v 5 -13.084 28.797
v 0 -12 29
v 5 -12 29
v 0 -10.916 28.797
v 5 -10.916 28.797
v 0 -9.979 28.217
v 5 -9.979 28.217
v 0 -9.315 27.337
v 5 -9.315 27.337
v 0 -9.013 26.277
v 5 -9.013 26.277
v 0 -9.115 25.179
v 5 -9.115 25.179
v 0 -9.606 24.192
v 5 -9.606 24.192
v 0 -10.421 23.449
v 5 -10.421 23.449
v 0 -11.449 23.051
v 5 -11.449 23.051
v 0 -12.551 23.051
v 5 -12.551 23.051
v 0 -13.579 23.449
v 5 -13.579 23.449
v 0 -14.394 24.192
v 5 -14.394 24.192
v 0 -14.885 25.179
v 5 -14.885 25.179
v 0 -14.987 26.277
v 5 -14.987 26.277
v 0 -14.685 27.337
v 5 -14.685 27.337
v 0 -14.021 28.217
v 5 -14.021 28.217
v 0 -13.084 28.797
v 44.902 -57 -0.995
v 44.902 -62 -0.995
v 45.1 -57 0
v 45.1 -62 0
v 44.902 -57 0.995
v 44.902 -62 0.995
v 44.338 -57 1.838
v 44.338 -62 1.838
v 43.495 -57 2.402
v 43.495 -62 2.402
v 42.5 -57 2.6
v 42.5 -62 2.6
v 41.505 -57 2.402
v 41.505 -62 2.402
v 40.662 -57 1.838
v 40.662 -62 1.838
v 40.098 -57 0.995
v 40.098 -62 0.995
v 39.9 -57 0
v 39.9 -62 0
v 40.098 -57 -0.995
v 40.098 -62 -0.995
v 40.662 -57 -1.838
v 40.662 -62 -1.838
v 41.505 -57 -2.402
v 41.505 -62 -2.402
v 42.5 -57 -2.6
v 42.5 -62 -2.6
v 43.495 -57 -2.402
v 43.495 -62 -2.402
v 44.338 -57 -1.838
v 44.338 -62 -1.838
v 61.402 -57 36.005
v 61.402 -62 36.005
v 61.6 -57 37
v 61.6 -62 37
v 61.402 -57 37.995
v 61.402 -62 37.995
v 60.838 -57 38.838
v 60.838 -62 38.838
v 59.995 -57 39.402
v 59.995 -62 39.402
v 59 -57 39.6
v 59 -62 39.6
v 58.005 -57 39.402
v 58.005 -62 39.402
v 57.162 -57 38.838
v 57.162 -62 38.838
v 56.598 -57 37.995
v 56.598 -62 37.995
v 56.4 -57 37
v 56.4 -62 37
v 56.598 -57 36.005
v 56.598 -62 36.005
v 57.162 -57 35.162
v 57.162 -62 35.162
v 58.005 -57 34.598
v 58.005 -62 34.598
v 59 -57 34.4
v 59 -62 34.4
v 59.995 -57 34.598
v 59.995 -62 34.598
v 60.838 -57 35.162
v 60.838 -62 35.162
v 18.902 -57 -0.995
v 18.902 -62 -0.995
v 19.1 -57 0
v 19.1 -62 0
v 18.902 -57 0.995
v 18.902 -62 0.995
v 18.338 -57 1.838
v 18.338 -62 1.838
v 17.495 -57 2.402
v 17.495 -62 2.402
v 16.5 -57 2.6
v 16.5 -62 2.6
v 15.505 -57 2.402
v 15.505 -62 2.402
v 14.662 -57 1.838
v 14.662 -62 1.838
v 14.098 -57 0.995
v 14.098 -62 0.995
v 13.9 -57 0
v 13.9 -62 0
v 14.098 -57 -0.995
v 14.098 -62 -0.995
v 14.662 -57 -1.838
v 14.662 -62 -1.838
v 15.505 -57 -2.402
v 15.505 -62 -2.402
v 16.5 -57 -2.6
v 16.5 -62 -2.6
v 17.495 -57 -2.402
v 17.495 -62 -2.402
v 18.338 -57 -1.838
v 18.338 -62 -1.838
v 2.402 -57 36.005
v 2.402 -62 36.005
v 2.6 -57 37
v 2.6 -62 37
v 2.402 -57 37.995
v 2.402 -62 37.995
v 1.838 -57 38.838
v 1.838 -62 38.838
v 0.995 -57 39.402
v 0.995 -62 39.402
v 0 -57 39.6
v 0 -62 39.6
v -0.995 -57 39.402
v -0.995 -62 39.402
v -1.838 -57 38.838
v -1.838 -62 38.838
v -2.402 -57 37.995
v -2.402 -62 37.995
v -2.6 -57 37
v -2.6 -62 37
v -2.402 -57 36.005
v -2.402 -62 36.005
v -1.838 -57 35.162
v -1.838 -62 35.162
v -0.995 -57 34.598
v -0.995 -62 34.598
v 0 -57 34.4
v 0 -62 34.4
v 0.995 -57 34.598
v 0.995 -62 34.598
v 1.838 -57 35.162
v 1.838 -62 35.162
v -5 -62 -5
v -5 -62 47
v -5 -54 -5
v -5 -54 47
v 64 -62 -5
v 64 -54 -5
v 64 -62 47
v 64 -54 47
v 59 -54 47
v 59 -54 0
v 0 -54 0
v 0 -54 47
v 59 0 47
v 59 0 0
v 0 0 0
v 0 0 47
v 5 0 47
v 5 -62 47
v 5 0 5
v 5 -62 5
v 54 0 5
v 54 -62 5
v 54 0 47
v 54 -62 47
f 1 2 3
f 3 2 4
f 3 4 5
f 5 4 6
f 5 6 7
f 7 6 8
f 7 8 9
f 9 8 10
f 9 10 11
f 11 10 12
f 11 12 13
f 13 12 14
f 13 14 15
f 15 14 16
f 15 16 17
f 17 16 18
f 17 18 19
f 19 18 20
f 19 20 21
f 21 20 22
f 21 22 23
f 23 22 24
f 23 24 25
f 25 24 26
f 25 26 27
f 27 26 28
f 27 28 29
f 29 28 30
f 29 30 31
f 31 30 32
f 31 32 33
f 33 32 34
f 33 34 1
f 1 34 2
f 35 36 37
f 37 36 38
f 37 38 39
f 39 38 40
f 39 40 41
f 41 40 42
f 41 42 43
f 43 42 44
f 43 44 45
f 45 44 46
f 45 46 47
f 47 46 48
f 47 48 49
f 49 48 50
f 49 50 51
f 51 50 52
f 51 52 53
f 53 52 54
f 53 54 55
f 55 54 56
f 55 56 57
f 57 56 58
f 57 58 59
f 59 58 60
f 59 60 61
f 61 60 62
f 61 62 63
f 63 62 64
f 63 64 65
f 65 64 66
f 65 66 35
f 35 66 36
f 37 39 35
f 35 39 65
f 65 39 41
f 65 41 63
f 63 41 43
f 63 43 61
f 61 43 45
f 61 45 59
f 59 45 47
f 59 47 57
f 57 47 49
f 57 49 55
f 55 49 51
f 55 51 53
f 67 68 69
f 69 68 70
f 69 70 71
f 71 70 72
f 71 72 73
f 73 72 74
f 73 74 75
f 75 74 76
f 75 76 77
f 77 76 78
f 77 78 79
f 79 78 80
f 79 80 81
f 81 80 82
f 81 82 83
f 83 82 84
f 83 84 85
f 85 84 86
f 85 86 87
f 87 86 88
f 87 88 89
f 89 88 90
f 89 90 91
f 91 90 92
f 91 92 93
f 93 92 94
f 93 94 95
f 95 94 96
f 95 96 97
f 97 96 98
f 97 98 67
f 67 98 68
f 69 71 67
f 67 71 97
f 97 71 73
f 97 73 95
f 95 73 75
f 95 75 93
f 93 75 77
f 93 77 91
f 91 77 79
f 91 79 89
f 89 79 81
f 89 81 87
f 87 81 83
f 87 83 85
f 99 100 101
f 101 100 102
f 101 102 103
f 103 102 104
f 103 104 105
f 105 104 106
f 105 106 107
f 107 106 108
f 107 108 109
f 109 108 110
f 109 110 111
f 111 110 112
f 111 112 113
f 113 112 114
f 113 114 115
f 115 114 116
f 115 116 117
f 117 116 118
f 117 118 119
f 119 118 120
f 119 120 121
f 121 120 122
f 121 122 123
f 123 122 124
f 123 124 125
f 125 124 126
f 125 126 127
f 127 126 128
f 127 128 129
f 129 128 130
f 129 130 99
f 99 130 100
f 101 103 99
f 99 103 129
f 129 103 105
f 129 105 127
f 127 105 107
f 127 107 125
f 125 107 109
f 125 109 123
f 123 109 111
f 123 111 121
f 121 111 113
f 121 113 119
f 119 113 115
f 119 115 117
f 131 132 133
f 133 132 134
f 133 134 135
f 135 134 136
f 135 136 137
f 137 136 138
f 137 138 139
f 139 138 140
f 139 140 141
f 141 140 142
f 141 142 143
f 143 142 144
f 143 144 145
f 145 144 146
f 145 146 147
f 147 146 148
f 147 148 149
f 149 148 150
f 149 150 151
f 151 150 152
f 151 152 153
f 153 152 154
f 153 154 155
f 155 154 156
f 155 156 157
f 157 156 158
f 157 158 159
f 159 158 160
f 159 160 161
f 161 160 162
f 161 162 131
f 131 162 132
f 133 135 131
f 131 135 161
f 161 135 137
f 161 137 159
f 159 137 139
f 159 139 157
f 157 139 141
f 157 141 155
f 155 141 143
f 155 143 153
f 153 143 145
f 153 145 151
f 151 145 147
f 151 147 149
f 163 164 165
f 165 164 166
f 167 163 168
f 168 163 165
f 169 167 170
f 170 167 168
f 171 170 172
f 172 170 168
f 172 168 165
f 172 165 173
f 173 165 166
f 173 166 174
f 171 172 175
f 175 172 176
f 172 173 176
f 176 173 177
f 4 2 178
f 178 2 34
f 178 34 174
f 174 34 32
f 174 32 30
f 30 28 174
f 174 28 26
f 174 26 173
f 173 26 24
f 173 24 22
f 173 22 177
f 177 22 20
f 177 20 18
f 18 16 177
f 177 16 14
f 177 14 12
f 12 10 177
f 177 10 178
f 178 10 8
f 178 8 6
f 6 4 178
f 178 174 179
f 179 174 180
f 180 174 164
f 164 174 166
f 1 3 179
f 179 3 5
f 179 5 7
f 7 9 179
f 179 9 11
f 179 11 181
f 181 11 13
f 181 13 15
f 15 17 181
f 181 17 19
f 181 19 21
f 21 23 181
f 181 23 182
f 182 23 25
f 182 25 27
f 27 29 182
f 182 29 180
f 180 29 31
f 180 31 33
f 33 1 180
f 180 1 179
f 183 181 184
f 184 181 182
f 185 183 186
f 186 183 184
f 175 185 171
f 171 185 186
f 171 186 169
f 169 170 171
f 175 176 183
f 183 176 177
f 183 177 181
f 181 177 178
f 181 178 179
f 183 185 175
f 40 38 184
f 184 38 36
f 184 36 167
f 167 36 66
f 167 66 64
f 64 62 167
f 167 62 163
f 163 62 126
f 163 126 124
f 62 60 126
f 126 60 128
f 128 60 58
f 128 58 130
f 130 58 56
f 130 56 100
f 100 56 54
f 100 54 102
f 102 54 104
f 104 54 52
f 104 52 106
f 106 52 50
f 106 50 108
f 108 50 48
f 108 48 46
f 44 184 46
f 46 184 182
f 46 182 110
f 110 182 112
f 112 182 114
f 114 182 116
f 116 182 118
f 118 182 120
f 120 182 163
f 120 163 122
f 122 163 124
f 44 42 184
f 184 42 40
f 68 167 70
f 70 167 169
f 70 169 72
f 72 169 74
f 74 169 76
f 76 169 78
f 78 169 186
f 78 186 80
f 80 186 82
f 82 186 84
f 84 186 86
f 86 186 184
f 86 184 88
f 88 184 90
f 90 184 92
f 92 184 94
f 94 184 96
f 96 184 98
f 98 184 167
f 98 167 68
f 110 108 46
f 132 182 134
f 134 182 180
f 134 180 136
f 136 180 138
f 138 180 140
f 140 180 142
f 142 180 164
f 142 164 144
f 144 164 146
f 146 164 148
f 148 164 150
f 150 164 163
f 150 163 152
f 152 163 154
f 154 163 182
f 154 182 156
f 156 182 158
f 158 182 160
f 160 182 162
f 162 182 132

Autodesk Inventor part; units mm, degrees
ref_plane "YZ Plane" through (0, 0, 0) normal (1, 0, 0) x (0, 1, 0)
ref_plane "XZ Plane" through (0, 0, 0) normal (0, 1, 0) x (-1, 0, 0)
ref_plane "XY Plane" through (0, 0, 0) normal (0, 0, 1) x (1, 0, 0)
sketch "Sketch1" plane through (0, 0, 0) normal (0, 1, 0) x (-1, 0, 0)
  line L0 (0, 0) -> (-59, 0)
  line L1 (-59, 0) -> (-59, 5)
  line L2 (-59, 5) -> (0, 5)
  line L3 (0, 5) -> (0, 0)
  line L4 (0, 5) -> (-5, 5)
  line L5 (-5, 5) -> (-5, 47)
  line L6 (-5, 47) -> (0, 47)
  line L7 (0, 47) -> (0, 5)
  line L8 (-59, 5) -> (-54, 5)
  line L9 (-54, 5) -> (-54, 47)
  line L10 (-54, 47) -> (-59, 47)
  line L11 (-59, 47) -> (-59, 5)
  point P0 (-54, 5)
  dimension "d0" = 59
  dimension "d1" = 5
  dimension "d2" = 5
  dimension "d3" = 42
  dimension "d4" = 5
  dimension "d5" = 42
extrude "Extrusion1" add sketch "Sketch1" against normal blind 62
sketch "Sketch7" plane through (0, -62, 0) normal (0, -1, 0) x (1, 0, 0)
  line L0 (0, 47) -> (0, 0) projected
  line L1 (0, 47) -> (-5, 47)
  line L2 (-5, 47) -> (-5, -5)
  line L3 (-5, -5) -> (0, -5)
  line L4 (0, -5) -> (0, 47)
  line L5 (59, 47) -> (54, 47) projected
  line L6 (59, 47) -> (64, 47)
  line L7 (64, 47) -> (64, -5)
  line L8 (64, -5) -> (59, -5)
  line L9 (59, -5) -> (59, 47)
  line L10 (0, 0) -> (59, 0) projected
  line L11 (59, -5) -> (0, -5)
  line L12 (0, -5) -> (0, 0)
  line L13 (0, 0) -> (59, 0)
  line L14 (59, 0) -> (59, -5)
  dimension "d34" = 5
  dimension "d35" = 52
  dimension "d36" = 5
  dimension "d37" = 52
extrude "Extrusion7" add sketch "Sketch7" against normal blind 8
sketch "Sketch8" plane through (0, -62, 0) normal (0, -1, 0) x (1, 0, 0)
  line L0 (0, 0) -> (0, 47) projected
  line L1 (5, 47) -> (-5, 47) projected
  circle A0 centre (0, 37) radius 2.6
  line L2 (59, 47) -> (59, 0) projected
  line L3 (64, 47) -> (54, 47) projected
  circle A1 centre (59, 37) radius 2.6
  line L4 (59, 0) -> (0, 0) projected
  line L5 (-5, 47) -> (-5, -5) projected
  line L6 (64, -5) -> (64, 47) projected
  circle A2 centre (16.5, 0) radius 2.6
  circle A3 centre (42.5, 0) radius 2.6
  point P0 (29.5, 0)
  dimension "d40" = 10
  dimension "d41" = 5.2
  dimension "d42" = 10
  dimension "d43" = 5.2
  dimension "d44" = 34.5
  dimension "d47" = 5.2
  dimension "d48" = 5.2
  dimension "d56" = 13
  dimension "d57" = 13
extrude "Extrusion8" cut sketch "Sketch8" against normal blind 5
sketch "Sketch9" plane through (0, 0, 0) normal (-1, 0, 0) x (0, 0, 1)
  point P0 (0, 0)
sketch "Sketch10" plane through (0, 0, 0) normal (-1, 0, 0) x (0, 0, 1)
  line L0 (47, 0) -> (47, -54) projected
  line L1 (47, -62) -> (-5, -62) projected
  circle A0 centre (26, -12) radius 3
  point P0 (0, 0)
  dimension "d51" = 21
  dimension "d52" = 50
  dimension "d53" = 6
extrude "Extrusion9" cut sketch "Sketch10" against normal blind 5
equation "\"d4\" = d2"
equation "\"d5\" = d3"
equation "\"d42\" = d40"
equation "\"d43\" = d41"
equation "\"d47\" = d41"
equation "\"d48\" = d47"
equation "\"d57\" = d56"
properties part number "top cam mount v04"
